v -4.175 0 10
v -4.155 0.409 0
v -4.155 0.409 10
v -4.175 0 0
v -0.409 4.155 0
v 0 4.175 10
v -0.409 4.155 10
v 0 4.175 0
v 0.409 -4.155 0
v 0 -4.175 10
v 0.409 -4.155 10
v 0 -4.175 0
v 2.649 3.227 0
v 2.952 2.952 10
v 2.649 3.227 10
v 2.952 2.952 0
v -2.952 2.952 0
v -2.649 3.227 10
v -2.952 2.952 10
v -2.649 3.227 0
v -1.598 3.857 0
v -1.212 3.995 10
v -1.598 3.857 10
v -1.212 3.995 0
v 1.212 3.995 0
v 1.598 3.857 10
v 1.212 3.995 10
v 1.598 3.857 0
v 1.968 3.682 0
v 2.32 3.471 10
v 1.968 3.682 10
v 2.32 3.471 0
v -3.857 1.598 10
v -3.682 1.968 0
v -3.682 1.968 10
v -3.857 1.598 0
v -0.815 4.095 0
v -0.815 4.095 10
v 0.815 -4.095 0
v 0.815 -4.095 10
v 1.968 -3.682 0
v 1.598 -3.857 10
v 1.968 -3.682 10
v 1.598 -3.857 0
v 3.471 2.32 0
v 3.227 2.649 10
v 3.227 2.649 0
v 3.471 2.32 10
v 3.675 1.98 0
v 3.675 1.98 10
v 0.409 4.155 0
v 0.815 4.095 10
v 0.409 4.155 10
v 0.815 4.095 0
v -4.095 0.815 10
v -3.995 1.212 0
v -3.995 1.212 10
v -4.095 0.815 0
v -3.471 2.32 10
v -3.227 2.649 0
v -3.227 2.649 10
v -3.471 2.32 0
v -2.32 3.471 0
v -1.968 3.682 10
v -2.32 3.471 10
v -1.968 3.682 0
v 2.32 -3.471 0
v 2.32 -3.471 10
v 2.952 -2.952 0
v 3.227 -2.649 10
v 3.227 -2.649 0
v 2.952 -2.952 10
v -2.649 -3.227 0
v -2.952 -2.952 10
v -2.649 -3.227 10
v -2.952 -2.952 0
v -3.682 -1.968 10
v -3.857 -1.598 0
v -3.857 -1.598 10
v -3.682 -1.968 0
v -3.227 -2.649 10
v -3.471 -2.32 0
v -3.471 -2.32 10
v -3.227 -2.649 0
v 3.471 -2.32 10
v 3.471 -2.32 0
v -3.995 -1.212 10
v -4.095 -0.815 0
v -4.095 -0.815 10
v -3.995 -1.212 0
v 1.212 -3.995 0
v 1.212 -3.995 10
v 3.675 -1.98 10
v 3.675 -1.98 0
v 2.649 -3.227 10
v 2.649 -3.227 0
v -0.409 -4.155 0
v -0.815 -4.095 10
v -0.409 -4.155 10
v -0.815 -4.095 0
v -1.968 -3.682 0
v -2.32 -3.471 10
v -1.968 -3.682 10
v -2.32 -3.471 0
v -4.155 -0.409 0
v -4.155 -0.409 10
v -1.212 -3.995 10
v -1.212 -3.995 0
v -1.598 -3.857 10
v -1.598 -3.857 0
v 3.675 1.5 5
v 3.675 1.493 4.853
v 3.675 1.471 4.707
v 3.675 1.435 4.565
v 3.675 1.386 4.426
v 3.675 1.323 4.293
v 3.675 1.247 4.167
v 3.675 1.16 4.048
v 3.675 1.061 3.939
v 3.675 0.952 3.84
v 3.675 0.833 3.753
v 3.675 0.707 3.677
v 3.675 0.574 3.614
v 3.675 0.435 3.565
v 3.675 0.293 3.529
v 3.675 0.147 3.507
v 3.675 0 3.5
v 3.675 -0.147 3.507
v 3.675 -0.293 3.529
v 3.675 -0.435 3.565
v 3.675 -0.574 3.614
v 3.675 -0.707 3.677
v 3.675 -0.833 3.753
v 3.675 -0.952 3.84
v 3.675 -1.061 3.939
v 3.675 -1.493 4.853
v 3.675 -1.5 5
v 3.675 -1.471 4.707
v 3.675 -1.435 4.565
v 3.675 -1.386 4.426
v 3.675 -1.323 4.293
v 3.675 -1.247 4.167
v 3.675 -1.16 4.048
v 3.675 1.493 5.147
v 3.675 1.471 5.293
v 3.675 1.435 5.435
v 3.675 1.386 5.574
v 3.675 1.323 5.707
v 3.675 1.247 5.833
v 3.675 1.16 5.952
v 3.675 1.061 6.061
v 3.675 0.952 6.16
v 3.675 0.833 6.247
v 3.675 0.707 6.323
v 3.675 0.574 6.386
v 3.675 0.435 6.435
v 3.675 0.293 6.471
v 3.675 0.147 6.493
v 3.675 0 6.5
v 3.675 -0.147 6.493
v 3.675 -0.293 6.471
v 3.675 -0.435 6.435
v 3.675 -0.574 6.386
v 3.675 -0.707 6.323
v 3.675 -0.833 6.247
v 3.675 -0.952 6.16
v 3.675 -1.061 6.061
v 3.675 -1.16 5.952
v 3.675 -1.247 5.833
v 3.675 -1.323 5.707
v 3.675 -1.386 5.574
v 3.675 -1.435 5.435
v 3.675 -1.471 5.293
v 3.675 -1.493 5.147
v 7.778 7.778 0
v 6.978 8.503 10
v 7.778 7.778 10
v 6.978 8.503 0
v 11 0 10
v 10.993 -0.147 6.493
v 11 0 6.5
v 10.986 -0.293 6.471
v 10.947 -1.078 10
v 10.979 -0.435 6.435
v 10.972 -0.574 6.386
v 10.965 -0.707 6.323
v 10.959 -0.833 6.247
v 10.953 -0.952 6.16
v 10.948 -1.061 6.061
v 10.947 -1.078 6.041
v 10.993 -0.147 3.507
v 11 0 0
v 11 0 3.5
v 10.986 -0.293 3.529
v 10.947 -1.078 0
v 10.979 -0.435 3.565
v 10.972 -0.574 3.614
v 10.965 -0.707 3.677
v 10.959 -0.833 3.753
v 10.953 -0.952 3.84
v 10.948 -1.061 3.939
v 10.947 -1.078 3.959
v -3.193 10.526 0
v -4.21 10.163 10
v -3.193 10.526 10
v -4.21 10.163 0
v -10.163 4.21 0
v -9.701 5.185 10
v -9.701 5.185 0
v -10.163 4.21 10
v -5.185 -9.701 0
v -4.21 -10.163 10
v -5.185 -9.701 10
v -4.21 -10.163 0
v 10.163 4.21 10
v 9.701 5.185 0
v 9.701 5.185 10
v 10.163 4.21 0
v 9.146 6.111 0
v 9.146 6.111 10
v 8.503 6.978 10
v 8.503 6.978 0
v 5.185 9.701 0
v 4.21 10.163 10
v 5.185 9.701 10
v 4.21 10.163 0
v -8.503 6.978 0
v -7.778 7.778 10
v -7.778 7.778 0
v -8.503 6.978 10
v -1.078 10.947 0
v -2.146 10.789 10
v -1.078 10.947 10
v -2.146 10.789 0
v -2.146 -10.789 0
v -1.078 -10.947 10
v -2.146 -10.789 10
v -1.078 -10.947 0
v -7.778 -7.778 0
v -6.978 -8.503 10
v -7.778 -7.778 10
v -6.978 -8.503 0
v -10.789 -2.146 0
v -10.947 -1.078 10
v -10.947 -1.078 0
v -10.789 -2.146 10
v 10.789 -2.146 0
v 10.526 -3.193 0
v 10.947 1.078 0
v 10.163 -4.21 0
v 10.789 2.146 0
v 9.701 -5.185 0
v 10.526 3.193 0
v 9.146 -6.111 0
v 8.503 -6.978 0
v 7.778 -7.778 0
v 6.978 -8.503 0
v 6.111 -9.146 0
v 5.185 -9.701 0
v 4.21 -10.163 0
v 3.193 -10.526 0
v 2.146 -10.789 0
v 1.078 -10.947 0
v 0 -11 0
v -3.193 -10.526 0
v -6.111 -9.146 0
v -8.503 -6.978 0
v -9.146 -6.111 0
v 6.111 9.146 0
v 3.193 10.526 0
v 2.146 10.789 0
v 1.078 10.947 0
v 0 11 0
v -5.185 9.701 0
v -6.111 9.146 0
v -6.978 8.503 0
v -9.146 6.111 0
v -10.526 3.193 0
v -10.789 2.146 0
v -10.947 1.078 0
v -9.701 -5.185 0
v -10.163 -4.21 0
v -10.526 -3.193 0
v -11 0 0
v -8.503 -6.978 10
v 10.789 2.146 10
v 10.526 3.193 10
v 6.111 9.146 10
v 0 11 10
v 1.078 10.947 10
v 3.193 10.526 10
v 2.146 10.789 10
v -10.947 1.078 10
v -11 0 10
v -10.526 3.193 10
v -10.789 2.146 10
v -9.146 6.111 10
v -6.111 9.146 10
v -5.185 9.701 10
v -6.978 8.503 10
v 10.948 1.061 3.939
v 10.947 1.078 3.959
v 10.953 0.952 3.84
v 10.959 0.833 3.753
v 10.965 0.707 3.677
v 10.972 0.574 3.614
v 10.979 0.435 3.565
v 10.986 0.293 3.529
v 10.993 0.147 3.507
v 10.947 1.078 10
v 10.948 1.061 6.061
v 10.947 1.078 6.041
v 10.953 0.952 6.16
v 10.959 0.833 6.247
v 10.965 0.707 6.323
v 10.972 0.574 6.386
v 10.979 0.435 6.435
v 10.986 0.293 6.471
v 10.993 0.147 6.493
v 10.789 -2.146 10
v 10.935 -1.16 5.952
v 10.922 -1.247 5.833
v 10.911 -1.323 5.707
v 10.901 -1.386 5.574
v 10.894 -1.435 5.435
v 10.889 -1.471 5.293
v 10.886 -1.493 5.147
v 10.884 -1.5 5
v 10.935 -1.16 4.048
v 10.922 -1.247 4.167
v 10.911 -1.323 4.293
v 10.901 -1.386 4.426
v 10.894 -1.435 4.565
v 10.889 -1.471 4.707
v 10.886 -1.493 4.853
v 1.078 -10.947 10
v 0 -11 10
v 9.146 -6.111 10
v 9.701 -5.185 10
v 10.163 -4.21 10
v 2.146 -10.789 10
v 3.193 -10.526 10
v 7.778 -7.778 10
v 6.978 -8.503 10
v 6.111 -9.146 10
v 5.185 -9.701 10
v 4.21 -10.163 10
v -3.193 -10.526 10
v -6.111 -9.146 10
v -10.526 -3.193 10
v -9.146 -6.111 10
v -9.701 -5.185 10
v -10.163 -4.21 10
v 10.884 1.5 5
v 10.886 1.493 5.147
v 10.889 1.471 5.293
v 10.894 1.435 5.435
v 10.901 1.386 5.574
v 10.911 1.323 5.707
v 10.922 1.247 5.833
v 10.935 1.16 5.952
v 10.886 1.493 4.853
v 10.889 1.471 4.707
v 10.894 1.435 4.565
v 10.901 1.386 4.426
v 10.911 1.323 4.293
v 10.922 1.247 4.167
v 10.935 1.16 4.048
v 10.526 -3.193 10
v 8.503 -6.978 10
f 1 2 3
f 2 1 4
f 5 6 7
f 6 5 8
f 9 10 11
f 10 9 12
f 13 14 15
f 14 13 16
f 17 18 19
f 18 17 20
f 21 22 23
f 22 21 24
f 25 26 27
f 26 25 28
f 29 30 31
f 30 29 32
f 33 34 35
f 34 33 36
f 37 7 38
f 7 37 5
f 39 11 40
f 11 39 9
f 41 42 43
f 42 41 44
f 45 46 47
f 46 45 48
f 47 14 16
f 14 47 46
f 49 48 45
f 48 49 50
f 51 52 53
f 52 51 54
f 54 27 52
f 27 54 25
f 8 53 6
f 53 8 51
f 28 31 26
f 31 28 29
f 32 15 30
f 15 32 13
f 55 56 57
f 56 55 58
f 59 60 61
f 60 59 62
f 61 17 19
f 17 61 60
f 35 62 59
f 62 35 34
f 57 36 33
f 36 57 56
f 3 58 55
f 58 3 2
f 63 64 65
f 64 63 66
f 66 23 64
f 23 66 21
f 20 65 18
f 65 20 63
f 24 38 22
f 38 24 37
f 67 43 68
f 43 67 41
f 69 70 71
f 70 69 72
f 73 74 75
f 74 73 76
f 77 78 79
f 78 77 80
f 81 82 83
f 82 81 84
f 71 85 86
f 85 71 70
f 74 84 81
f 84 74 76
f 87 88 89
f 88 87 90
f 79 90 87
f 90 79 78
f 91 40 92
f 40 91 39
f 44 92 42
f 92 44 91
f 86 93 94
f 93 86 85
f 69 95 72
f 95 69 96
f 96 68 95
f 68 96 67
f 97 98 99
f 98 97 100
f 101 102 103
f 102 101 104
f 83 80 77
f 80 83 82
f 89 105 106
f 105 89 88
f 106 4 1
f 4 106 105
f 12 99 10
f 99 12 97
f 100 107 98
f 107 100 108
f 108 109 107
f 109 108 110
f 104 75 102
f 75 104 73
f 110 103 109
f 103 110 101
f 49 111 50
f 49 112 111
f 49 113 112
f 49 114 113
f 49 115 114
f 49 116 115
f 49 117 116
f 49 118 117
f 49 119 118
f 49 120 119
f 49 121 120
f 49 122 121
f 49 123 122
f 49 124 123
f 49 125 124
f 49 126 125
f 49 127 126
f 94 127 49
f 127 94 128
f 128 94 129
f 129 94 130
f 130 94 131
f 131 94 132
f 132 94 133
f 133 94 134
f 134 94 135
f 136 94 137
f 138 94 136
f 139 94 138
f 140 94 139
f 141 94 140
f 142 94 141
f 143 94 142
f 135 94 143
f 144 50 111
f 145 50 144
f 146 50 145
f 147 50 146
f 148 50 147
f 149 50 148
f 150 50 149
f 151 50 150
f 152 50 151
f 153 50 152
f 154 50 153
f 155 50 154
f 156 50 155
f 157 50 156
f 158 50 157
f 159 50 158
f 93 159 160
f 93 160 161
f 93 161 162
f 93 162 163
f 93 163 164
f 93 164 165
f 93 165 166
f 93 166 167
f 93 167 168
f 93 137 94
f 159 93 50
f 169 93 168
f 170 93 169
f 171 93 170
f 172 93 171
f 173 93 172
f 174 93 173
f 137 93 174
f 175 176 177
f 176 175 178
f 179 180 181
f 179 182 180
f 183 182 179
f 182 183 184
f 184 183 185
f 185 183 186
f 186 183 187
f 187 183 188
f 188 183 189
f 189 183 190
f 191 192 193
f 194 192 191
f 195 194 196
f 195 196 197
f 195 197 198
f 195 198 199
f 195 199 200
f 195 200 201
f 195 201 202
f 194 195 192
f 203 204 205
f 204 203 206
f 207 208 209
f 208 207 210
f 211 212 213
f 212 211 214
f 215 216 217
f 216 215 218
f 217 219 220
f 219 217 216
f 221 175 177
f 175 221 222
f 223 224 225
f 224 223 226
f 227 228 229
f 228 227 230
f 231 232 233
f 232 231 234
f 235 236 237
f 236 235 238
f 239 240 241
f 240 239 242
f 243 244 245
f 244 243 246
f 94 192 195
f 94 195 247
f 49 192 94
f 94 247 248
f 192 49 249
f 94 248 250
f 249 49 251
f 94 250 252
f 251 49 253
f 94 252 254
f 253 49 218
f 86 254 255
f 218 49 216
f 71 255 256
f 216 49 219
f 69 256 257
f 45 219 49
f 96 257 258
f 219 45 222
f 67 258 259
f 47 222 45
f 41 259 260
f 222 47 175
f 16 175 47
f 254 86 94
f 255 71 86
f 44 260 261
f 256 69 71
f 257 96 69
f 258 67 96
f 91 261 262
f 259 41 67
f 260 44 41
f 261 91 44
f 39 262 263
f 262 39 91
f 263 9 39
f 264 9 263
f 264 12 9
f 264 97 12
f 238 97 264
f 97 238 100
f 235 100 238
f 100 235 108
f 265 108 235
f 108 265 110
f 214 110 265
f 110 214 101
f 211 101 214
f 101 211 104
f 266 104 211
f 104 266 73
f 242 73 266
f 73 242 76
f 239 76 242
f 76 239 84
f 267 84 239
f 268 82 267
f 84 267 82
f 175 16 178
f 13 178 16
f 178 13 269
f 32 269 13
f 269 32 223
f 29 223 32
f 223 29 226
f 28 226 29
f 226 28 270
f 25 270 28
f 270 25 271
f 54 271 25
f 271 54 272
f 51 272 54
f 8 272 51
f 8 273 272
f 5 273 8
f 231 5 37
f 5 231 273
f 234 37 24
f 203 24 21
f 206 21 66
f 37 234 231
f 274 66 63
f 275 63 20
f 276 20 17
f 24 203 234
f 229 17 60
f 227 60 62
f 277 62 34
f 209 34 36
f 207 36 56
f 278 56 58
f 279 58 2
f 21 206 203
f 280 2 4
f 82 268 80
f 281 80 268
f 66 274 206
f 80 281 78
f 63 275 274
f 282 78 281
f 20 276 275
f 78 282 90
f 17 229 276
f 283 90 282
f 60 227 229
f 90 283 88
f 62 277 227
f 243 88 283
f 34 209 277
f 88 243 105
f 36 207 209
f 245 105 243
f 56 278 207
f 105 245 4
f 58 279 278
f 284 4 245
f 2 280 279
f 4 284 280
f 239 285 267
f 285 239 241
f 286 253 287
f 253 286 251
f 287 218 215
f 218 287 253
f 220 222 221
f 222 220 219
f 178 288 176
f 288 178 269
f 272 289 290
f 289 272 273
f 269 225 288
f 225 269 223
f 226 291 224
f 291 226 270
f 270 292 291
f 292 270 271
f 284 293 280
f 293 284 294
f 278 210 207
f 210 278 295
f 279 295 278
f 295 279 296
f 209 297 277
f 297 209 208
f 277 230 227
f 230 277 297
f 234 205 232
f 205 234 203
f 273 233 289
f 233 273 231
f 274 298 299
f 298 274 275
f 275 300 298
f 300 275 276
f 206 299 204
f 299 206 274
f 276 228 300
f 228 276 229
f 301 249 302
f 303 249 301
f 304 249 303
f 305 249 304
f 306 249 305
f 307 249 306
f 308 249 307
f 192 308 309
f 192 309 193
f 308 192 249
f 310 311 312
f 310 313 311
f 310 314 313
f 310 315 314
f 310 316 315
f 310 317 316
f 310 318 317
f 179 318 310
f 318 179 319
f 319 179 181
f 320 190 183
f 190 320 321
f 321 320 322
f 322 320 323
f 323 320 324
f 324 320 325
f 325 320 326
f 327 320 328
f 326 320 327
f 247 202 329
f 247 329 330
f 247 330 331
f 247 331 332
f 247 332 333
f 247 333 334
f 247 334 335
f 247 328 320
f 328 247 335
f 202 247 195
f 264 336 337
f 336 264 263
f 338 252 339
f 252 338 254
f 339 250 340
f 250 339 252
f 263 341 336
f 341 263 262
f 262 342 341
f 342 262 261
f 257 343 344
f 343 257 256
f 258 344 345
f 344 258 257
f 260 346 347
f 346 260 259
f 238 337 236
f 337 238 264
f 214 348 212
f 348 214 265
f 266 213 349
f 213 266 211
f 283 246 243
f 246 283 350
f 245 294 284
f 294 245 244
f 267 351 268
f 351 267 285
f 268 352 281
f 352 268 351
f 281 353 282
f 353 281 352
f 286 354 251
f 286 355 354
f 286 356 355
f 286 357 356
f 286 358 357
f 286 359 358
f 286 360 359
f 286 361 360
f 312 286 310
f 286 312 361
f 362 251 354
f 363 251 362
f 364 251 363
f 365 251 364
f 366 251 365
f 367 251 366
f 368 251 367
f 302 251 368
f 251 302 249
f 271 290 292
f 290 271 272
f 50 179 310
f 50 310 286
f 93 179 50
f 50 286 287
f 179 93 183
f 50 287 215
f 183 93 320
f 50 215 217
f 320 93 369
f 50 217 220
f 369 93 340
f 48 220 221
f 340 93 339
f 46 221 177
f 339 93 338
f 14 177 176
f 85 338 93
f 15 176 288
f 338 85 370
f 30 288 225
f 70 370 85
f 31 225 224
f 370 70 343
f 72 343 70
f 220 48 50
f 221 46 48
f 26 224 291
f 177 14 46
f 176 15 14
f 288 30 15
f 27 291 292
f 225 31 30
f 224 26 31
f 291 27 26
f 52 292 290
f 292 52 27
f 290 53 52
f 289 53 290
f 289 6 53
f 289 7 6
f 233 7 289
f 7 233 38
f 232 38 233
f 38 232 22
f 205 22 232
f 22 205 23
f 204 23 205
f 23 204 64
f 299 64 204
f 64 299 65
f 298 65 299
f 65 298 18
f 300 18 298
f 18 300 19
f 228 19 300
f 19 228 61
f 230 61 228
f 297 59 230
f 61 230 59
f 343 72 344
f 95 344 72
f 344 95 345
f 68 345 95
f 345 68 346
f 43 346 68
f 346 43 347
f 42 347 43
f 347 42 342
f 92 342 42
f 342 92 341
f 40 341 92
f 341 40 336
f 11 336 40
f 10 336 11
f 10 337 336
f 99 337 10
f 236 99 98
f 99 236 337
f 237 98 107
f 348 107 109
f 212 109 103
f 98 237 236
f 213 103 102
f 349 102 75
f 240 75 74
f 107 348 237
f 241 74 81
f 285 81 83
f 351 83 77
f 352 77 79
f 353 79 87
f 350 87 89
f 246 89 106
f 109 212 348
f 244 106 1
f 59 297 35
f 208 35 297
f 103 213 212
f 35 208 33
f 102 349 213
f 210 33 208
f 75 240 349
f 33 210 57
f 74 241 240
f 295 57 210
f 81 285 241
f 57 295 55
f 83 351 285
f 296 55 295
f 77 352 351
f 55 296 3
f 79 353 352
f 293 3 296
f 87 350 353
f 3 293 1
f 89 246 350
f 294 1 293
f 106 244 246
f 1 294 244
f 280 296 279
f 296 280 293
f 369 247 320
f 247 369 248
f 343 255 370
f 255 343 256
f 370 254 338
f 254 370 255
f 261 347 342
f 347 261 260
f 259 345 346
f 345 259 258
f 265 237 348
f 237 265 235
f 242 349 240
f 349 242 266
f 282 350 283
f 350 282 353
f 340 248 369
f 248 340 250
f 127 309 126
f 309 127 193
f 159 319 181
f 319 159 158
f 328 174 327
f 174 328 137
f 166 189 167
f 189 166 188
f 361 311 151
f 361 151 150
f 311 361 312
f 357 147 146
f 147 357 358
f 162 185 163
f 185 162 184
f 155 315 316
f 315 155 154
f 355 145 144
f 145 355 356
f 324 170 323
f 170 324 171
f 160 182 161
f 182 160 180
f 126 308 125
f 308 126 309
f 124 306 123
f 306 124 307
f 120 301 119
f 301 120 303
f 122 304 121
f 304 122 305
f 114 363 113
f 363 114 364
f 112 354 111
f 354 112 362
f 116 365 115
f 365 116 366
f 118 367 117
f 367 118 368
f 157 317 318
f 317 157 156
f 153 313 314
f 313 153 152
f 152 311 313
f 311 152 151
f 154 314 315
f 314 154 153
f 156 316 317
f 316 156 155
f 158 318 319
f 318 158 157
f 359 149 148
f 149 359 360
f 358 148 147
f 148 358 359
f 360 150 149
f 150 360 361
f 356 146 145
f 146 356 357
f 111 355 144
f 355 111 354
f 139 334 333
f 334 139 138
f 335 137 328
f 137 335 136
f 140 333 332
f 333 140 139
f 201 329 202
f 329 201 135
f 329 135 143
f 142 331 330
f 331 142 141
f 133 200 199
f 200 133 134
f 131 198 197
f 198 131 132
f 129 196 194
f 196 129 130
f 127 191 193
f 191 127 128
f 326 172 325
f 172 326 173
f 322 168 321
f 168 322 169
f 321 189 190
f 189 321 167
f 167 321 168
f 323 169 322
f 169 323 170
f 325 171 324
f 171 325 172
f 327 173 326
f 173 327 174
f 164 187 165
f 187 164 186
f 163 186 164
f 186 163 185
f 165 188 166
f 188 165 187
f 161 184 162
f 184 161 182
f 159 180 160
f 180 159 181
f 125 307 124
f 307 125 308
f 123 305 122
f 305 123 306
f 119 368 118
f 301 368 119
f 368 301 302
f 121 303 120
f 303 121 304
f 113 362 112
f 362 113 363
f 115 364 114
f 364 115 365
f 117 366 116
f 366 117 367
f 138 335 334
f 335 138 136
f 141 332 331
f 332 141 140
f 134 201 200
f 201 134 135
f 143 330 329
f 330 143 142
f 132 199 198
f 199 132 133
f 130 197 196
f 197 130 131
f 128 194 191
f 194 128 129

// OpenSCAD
// Gen-CP — shaft collar with D-flat bore (set screw bears on the flat); print x4
include <parameters.scad>;
$fn = 64;
// D-flat keyed bore: flat faces +X (angle 0 = magnet pocket 0 = index notch)
module dflat_bore(h) {
    intersection() {
        cylinder(d=shaft_bore, h=h);
        translate([-shaft_bore, -shaft_bore, 0]) cube([shaft_bore + dflat_x, 2*shaft_bore, h]);
    }
}

od = 22; h = collar_h; set_d = 3.0;
difference() {
    cylinder(d=od, h=h);
    translate([0, 0, -0.1]) dflat_bore(h + 0.2);
    translate([0, 0, h/2]) rotate([0, 90, 0]) cylinder(d=set_d, h=od);
}
